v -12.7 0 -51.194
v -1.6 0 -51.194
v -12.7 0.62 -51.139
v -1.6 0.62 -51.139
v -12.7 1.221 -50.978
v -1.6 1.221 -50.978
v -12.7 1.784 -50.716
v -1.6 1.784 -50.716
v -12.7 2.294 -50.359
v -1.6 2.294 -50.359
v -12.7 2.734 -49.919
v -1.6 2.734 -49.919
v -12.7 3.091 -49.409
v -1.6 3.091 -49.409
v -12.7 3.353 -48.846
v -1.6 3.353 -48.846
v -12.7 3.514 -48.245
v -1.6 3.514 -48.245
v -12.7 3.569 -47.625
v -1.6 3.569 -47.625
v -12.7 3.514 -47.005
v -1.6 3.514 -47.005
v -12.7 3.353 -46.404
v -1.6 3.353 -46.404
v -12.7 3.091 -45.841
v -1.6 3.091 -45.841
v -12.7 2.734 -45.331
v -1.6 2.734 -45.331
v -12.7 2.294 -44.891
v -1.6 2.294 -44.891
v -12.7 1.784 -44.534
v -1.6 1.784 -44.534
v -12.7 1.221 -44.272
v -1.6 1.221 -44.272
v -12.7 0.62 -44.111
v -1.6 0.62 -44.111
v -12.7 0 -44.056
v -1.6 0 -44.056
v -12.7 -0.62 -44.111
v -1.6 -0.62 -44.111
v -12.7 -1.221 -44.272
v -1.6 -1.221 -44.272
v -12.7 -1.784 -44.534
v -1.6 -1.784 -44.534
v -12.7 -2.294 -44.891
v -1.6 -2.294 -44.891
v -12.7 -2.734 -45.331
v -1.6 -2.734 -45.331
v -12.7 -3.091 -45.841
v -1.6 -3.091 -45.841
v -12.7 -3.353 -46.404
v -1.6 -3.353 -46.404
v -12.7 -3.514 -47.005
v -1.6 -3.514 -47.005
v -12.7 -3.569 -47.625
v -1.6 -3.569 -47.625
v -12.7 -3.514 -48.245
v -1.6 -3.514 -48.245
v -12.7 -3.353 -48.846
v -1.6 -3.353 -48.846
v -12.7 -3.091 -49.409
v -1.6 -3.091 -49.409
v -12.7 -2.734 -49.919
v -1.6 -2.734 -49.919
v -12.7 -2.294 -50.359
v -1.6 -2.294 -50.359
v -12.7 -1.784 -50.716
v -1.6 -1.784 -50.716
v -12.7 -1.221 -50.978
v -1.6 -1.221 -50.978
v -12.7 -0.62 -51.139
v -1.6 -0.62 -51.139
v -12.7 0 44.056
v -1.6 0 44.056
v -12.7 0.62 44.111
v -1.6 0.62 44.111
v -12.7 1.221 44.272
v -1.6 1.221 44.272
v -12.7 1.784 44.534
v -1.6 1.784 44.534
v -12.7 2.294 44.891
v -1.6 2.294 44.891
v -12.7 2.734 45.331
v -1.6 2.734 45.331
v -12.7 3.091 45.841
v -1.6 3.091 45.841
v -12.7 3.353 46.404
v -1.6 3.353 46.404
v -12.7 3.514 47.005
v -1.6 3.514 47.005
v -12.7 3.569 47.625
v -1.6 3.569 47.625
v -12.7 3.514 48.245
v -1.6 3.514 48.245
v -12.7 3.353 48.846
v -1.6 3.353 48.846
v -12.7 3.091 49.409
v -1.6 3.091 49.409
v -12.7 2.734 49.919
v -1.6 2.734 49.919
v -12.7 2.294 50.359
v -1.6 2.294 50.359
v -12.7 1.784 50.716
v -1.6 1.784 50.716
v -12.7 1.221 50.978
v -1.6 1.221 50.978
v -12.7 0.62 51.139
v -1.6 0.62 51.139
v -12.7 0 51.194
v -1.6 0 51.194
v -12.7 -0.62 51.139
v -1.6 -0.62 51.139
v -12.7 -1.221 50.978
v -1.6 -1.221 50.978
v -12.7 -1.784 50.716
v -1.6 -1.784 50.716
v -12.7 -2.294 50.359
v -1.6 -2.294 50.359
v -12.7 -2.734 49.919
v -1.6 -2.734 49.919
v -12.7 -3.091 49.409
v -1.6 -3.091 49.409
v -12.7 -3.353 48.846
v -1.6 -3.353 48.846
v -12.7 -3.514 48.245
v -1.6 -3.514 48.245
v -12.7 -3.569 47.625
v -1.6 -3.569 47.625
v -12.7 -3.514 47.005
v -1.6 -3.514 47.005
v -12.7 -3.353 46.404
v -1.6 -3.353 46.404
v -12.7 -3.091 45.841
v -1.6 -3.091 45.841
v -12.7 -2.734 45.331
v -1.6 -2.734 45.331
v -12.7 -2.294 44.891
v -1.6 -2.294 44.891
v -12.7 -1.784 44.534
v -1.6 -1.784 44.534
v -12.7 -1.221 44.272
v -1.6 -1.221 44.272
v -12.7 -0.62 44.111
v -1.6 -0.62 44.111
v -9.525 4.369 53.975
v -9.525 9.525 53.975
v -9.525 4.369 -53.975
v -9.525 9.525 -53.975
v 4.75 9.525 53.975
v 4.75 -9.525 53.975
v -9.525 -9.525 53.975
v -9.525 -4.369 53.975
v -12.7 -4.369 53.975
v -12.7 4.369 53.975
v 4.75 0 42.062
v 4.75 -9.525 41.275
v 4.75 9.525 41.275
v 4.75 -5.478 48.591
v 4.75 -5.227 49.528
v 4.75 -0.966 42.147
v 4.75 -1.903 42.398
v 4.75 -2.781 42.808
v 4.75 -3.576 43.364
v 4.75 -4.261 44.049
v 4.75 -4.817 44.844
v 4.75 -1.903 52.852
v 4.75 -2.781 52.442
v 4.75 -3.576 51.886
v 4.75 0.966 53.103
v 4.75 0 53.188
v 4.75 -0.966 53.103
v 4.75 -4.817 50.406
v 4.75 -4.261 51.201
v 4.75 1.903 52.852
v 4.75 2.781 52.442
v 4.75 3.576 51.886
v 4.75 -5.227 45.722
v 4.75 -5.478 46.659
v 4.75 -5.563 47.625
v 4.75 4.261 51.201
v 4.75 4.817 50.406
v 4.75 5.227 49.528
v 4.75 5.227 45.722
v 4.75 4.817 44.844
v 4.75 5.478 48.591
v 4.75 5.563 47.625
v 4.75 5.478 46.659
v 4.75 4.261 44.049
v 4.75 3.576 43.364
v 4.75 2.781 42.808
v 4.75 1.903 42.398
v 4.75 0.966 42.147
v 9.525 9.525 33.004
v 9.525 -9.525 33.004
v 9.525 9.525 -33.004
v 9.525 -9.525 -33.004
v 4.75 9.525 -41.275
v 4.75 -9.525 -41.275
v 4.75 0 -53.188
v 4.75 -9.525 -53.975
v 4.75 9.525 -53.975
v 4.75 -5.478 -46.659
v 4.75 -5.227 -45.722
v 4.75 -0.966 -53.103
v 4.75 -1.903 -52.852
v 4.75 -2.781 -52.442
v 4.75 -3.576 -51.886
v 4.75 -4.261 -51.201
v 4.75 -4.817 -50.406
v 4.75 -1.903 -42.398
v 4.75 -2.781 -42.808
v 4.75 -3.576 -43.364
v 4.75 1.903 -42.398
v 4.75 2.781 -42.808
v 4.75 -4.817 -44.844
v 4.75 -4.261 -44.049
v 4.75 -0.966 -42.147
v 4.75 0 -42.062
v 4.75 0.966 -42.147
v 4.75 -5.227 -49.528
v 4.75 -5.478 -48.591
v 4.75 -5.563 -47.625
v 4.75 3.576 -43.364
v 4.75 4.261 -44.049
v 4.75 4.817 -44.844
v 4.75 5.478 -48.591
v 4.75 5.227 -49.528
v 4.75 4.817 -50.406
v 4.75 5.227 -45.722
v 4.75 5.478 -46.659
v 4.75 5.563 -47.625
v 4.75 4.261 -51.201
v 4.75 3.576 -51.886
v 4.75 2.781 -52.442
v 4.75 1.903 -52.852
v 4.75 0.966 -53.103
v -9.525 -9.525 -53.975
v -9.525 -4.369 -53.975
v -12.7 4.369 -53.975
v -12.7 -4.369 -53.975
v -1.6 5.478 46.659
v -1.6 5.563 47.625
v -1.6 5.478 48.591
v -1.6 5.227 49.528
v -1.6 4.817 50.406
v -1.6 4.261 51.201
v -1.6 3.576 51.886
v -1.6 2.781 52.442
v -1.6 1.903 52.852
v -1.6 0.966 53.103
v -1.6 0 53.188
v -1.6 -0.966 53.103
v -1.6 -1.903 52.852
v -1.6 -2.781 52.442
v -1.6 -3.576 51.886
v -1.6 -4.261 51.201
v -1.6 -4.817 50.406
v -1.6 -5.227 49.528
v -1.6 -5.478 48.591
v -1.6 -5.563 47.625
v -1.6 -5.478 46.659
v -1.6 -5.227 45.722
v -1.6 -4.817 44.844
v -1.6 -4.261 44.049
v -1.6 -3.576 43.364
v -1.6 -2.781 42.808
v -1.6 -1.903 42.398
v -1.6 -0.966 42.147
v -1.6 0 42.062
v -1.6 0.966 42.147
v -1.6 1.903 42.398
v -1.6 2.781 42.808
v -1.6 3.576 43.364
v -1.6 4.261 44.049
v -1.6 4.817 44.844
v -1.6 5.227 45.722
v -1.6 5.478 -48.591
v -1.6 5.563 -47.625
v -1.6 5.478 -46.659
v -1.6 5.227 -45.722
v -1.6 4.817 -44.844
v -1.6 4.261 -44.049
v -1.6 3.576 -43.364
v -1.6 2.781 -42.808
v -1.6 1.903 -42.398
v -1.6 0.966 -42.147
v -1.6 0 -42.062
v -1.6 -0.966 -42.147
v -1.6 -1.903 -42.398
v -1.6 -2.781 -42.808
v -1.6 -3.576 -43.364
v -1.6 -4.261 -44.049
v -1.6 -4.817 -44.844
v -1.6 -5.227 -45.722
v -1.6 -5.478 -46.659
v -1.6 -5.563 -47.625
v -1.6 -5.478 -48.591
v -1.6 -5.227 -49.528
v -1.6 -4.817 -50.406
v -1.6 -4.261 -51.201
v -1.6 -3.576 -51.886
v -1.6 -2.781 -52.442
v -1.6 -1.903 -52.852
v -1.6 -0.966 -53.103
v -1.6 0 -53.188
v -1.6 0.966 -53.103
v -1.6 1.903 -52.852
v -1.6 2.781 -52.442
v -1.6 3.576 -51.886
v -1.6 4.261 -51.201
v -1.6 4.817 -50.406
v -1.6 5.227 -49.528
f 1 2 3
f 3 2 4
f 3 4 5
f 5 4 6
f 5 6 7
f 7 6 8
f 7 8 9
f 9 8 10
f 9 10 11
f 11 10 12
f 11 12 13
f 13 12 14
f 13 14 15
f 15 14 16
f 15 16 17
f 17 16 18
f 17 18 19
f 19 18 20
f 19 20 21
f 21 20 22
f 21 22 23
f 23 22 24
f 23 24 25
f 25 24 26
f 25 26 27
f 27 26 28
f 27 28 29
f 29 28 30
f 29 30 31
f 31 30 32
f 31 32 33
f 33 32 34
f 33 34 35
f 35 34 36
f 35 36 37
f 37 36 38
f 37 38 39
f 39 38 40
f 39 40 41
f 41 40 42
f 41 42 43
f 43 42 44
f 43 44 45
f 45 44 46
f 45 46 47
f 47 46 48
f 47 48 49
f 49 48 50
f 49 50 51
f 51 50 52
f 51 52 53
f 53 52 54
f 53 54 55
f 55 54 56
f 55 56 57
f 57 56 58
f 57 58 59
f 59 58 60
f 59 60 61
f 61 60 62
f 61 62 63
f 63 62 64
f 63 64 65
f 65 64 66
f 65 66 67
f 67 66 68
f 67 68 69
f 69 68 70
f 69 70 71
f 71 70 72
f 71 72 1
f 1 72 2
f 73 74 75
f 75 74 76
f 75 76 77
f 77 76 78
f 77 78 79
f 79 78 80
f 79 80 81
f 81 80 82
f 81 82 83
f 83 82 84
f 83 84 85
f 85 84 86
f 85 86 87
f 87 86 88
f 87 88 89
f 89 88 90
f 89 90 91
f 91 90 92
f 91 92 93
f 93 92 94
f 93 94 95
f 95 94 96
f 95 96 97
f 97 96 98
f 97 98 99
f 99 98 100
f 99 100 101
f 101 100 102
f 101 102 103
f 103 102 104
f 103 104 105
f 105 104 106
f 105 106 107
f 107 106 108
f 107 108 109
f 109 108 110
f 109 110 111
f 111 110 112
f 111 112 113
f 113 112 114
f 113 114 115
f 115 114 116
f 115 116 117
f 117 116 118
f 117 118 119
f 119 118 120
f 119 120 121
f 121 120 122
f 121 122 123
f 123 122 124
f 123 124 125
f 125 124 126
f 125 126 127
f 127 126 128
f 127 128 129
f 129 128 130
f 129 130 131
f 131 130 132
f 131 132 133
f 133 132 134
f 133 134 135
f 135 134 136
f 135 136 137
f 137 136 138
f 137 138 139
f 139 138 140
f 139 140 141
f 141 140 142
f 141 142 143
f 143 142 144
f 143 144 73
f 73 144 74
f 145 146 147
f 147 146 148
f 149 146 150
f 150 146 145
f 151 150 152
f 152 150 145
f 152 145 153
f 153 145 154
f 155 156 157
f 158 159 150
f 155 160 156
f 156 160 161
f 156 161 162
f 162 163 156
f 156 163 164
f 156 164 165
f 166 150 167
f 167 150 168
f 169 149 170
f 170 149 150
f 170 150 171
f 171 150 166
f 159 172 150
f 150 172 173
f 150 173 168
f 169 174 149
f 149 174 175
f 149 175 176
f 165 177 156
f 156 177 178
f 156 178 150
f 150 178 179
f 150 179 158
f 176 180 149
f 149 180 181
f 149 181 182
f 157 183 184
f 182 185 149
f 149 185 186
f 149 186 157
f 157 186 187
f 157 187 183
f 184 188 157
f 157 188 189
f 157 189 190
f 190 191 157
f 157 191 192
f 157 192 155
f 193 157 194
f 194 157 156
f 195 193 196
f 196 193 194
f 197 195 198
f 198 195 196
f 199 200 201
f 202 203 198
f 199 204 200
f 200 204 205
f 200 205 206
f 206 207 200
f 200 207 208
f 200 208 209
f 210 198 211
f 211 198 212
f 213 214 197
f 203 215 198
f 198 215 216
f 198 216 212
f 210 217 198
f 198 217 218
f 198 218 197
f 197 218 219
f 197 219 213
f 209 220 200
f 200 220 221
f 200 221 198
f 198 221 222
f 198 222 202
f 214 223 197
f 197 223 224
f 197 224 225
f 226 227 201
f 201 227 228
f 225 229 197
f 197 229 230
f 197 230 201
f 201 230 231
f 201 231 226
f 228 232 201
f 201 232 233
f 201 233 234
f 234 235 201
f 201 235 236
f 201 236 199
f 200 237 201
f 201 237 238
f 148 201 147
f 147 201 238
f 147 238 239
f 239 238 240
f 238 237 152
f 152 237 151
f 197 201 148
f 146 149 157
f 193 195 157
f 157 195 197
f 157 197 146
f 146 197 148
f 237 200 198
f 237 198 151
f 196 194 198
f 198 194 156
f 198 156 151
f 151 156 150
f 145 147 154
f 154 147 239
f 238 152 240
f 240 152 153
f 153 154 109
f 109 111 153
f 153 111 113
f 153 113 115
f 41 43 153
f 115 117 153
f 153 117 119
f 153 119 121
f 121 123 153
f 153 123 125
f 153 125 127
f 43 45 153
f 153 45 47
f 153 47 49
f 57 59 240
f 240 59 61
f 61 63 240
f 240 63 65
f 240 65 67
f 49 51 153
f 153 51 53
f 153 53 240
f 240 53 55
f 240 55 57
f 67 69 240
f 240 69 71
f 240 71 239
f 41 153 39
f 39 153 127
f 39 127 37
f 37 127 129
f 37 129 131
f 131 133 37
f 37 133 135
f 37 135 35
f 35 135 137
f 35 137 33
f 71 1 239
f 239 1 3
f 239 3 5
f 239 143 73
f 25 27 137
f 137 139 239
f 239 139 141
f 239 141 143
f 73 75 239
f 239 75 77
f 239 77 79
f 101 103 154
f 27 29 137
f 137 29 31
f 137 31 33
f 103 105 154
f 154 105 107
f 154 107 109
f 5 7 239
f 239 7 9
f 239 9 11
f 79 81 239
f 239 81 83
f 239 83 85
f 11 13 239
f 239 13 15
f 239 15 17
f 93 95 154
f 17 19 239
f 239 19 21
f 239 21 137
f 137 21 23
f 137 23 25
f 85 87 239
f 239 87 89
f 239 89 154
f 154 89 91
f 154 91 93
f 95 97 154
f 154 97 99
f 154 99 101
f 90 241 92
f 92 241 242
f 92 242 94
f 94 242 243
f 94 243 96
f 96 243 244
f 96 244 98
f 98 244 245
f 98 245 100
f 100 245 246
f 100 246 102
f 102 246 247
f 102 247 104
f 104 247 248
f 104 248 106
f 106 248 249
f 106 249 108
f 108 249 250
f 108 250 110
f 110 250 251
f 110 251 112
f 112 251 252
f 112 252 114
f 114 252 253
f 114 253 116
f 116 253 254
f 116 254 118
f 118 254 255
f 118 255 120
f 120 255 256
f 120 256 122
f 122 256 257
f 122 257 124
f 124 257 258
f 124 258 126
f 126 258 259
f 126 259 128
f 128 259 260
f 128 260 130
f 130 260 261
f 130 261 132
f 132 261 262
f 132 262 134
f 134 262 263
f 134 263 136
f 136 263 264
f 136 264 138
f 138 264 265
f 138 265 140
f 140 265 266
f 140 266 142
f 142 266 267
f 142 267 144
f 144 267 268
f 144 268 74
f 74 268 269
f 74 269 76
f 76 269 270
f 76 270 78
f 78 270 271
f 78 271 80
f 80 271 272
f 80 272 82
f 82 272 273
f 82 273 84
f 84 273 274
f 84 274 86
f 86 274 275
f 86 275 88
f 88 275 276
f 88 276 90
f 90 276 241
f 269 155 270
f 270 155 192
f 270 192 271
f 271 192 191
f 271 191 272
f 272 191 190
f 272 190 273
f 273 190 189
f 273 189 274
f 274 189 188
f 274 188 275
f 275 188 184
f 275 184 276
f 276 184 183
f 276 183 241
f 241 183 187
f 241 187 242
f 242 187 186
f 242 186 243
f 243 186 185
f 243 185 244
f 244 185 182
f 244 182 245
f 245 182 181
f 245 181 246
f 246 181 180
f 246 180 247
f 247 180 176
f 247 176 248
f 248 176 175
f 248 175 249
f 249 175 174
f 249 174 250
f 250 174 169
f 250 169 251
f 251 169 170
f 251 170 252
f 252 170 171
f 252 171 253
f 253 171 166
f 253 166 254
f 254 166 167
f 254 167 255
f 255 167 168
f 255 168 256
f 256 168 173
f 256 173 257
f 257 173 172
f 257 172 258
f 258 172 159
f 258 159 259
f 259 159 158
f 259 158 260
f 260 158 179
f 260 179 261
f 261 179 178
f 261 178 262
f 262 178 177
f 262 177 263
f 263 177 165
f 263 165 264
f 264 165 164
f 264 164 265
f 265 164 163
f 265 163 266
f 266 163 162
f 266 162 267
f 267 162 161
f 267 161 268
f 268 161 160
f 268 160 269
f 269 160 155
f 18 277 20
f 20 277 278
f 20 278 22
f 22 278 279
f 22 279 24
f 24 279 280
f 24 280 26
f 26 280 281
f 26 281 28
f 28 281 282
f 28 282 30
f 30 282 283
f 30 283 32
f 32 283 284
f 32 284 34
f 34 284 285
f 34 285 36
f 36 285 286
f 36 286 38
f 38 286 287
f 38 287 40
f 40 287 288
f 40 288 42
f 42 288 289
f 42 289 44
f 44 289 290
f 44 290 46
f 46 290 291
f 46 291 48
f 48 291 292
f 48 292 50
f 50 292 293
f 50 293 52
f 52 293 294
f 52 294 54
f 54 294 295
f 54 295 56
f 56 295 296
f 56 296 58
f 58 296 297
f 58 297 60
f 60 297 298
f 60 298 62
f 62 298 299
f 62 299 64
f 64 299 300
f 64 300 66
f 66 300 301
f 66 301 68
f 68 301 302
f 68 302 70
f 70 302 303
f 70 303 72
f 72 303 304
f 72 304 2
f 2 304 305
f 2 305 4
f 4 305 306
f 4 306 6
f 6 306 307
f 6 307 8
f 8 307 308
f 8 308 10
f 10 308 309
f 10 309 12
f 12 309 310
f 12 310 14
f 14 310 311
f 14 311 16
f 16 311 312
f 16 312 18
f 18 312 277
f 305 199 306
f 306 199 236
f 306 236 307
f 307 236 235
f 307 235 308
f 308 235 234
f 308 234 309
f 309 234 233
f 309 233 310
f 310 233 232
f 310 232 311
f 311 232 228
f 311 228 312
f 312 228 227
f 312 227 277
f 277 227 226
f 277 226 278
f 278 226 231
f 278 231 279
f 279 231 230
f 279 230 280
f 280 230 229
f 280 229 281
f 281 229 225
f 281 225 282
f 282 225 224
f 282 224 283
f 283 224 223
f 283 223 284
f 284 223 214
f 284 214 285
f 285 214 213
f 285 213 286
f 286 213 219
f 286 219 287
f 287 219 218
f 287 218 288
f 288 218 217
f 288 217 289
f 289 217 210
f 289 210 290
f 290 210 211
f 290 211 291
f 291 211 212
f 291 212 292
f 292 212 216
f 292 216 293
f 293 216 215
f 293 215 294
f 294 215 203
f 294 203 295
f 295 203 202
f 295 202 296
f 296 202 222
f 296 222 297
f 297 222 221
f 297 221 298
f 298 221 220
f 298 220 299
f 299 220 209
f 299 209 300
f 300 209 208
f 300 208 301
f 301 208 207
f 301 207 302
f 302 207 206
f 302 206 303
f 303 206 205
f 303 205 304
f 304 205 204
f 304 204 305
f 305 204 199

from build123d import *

# Parameters (mm, degrees)
BOSS_EXTRUDE1_DEPTH = 9.525
BOSS_EXTRUDE2_START = -12.7
SKETCH2_W           = 107.95
SKETCH2_H           = 8.7376
BOSS_EXTRUDE2_DEPTH = 3.175
CUT_EXTRUDE2_START  = 4.7498
SKETCH3_R           = 3.5687
CUT_EXTRUDE2_DEPTH  = 22.225
CUT_EXTRUDE4_START  = 4.7498
SKETCH4_R           = 5.5626
CUT_EXTRUDE4_DEPTH  = 6.35


with BuildPart() as part:
    # Sketch1 → Boss-Extrude1 (new, symmetric)
    with BuildSketch(Plane(origin=(0, 0, 0), x_dir=(1, 0, 0), z_dir=(0, 1, 0))):
        Polygon((-9.525, -53.975), (-9.525, 53.975), (4.7498, 53.975), (4.7498, 41.275), (9.525, 33.004110984), (9.525, -33.004110984), (4.7498, -41.275), (4.7498, -53.975), align=None)
    extrude(amount=BOSS_EXTRUDE1_DEPTH, both=True)

    # Sketch2 → Boss-Extrude2 (add)
    with BuildSketch(Plane(origin=(0, 0, 0), x_dir=(0, 0, -1), z_dir=(1, 0, 0)).offset(BOSS_EXTRUDE2_START)):
        Rectangle(SKETCH2_W, SKETCH2_H)
    extrude(amount=BOSS_EXTRUDE2_DEPTH)

    # Sketch3 → Cut-Extrude2 (cut)
    with BuildSketch(Plane(origin=(0, 0, 0), x_dir=(0, 0, -1), z_dir=(1, 0, 0)).offset(CUT_EXTRUDE2_START)):
        with Locations((-47.625, 0)):
            Circle(SKETCH3_R)
        with Locations((47.625, 0)):
            Circle(SKETCH3_R)
    extrude(amount=-CUT_EXTRUDE2_DEPTH, mode=Mode.SUBTRACT)

    # Sketch4 → Cut-Extrude4 (cut)
    with BuildSketch(Plane(origin=(0, 0, 0), x_dir=(0, 0, -1), z_dir=(1, 0, 0)).offset(CUT_EXTRUDE4_START)):
        with Locations((-47.625, 0)):
            Circle(SKETCH4_R)
        with Locations((47.625, 0)):
            Circle(SKETCH4_R)
    extrude(amount=-CUT_EXTRUDE4_DEPTH, mode=Mode.SUBTRACT)


solid = part.part
